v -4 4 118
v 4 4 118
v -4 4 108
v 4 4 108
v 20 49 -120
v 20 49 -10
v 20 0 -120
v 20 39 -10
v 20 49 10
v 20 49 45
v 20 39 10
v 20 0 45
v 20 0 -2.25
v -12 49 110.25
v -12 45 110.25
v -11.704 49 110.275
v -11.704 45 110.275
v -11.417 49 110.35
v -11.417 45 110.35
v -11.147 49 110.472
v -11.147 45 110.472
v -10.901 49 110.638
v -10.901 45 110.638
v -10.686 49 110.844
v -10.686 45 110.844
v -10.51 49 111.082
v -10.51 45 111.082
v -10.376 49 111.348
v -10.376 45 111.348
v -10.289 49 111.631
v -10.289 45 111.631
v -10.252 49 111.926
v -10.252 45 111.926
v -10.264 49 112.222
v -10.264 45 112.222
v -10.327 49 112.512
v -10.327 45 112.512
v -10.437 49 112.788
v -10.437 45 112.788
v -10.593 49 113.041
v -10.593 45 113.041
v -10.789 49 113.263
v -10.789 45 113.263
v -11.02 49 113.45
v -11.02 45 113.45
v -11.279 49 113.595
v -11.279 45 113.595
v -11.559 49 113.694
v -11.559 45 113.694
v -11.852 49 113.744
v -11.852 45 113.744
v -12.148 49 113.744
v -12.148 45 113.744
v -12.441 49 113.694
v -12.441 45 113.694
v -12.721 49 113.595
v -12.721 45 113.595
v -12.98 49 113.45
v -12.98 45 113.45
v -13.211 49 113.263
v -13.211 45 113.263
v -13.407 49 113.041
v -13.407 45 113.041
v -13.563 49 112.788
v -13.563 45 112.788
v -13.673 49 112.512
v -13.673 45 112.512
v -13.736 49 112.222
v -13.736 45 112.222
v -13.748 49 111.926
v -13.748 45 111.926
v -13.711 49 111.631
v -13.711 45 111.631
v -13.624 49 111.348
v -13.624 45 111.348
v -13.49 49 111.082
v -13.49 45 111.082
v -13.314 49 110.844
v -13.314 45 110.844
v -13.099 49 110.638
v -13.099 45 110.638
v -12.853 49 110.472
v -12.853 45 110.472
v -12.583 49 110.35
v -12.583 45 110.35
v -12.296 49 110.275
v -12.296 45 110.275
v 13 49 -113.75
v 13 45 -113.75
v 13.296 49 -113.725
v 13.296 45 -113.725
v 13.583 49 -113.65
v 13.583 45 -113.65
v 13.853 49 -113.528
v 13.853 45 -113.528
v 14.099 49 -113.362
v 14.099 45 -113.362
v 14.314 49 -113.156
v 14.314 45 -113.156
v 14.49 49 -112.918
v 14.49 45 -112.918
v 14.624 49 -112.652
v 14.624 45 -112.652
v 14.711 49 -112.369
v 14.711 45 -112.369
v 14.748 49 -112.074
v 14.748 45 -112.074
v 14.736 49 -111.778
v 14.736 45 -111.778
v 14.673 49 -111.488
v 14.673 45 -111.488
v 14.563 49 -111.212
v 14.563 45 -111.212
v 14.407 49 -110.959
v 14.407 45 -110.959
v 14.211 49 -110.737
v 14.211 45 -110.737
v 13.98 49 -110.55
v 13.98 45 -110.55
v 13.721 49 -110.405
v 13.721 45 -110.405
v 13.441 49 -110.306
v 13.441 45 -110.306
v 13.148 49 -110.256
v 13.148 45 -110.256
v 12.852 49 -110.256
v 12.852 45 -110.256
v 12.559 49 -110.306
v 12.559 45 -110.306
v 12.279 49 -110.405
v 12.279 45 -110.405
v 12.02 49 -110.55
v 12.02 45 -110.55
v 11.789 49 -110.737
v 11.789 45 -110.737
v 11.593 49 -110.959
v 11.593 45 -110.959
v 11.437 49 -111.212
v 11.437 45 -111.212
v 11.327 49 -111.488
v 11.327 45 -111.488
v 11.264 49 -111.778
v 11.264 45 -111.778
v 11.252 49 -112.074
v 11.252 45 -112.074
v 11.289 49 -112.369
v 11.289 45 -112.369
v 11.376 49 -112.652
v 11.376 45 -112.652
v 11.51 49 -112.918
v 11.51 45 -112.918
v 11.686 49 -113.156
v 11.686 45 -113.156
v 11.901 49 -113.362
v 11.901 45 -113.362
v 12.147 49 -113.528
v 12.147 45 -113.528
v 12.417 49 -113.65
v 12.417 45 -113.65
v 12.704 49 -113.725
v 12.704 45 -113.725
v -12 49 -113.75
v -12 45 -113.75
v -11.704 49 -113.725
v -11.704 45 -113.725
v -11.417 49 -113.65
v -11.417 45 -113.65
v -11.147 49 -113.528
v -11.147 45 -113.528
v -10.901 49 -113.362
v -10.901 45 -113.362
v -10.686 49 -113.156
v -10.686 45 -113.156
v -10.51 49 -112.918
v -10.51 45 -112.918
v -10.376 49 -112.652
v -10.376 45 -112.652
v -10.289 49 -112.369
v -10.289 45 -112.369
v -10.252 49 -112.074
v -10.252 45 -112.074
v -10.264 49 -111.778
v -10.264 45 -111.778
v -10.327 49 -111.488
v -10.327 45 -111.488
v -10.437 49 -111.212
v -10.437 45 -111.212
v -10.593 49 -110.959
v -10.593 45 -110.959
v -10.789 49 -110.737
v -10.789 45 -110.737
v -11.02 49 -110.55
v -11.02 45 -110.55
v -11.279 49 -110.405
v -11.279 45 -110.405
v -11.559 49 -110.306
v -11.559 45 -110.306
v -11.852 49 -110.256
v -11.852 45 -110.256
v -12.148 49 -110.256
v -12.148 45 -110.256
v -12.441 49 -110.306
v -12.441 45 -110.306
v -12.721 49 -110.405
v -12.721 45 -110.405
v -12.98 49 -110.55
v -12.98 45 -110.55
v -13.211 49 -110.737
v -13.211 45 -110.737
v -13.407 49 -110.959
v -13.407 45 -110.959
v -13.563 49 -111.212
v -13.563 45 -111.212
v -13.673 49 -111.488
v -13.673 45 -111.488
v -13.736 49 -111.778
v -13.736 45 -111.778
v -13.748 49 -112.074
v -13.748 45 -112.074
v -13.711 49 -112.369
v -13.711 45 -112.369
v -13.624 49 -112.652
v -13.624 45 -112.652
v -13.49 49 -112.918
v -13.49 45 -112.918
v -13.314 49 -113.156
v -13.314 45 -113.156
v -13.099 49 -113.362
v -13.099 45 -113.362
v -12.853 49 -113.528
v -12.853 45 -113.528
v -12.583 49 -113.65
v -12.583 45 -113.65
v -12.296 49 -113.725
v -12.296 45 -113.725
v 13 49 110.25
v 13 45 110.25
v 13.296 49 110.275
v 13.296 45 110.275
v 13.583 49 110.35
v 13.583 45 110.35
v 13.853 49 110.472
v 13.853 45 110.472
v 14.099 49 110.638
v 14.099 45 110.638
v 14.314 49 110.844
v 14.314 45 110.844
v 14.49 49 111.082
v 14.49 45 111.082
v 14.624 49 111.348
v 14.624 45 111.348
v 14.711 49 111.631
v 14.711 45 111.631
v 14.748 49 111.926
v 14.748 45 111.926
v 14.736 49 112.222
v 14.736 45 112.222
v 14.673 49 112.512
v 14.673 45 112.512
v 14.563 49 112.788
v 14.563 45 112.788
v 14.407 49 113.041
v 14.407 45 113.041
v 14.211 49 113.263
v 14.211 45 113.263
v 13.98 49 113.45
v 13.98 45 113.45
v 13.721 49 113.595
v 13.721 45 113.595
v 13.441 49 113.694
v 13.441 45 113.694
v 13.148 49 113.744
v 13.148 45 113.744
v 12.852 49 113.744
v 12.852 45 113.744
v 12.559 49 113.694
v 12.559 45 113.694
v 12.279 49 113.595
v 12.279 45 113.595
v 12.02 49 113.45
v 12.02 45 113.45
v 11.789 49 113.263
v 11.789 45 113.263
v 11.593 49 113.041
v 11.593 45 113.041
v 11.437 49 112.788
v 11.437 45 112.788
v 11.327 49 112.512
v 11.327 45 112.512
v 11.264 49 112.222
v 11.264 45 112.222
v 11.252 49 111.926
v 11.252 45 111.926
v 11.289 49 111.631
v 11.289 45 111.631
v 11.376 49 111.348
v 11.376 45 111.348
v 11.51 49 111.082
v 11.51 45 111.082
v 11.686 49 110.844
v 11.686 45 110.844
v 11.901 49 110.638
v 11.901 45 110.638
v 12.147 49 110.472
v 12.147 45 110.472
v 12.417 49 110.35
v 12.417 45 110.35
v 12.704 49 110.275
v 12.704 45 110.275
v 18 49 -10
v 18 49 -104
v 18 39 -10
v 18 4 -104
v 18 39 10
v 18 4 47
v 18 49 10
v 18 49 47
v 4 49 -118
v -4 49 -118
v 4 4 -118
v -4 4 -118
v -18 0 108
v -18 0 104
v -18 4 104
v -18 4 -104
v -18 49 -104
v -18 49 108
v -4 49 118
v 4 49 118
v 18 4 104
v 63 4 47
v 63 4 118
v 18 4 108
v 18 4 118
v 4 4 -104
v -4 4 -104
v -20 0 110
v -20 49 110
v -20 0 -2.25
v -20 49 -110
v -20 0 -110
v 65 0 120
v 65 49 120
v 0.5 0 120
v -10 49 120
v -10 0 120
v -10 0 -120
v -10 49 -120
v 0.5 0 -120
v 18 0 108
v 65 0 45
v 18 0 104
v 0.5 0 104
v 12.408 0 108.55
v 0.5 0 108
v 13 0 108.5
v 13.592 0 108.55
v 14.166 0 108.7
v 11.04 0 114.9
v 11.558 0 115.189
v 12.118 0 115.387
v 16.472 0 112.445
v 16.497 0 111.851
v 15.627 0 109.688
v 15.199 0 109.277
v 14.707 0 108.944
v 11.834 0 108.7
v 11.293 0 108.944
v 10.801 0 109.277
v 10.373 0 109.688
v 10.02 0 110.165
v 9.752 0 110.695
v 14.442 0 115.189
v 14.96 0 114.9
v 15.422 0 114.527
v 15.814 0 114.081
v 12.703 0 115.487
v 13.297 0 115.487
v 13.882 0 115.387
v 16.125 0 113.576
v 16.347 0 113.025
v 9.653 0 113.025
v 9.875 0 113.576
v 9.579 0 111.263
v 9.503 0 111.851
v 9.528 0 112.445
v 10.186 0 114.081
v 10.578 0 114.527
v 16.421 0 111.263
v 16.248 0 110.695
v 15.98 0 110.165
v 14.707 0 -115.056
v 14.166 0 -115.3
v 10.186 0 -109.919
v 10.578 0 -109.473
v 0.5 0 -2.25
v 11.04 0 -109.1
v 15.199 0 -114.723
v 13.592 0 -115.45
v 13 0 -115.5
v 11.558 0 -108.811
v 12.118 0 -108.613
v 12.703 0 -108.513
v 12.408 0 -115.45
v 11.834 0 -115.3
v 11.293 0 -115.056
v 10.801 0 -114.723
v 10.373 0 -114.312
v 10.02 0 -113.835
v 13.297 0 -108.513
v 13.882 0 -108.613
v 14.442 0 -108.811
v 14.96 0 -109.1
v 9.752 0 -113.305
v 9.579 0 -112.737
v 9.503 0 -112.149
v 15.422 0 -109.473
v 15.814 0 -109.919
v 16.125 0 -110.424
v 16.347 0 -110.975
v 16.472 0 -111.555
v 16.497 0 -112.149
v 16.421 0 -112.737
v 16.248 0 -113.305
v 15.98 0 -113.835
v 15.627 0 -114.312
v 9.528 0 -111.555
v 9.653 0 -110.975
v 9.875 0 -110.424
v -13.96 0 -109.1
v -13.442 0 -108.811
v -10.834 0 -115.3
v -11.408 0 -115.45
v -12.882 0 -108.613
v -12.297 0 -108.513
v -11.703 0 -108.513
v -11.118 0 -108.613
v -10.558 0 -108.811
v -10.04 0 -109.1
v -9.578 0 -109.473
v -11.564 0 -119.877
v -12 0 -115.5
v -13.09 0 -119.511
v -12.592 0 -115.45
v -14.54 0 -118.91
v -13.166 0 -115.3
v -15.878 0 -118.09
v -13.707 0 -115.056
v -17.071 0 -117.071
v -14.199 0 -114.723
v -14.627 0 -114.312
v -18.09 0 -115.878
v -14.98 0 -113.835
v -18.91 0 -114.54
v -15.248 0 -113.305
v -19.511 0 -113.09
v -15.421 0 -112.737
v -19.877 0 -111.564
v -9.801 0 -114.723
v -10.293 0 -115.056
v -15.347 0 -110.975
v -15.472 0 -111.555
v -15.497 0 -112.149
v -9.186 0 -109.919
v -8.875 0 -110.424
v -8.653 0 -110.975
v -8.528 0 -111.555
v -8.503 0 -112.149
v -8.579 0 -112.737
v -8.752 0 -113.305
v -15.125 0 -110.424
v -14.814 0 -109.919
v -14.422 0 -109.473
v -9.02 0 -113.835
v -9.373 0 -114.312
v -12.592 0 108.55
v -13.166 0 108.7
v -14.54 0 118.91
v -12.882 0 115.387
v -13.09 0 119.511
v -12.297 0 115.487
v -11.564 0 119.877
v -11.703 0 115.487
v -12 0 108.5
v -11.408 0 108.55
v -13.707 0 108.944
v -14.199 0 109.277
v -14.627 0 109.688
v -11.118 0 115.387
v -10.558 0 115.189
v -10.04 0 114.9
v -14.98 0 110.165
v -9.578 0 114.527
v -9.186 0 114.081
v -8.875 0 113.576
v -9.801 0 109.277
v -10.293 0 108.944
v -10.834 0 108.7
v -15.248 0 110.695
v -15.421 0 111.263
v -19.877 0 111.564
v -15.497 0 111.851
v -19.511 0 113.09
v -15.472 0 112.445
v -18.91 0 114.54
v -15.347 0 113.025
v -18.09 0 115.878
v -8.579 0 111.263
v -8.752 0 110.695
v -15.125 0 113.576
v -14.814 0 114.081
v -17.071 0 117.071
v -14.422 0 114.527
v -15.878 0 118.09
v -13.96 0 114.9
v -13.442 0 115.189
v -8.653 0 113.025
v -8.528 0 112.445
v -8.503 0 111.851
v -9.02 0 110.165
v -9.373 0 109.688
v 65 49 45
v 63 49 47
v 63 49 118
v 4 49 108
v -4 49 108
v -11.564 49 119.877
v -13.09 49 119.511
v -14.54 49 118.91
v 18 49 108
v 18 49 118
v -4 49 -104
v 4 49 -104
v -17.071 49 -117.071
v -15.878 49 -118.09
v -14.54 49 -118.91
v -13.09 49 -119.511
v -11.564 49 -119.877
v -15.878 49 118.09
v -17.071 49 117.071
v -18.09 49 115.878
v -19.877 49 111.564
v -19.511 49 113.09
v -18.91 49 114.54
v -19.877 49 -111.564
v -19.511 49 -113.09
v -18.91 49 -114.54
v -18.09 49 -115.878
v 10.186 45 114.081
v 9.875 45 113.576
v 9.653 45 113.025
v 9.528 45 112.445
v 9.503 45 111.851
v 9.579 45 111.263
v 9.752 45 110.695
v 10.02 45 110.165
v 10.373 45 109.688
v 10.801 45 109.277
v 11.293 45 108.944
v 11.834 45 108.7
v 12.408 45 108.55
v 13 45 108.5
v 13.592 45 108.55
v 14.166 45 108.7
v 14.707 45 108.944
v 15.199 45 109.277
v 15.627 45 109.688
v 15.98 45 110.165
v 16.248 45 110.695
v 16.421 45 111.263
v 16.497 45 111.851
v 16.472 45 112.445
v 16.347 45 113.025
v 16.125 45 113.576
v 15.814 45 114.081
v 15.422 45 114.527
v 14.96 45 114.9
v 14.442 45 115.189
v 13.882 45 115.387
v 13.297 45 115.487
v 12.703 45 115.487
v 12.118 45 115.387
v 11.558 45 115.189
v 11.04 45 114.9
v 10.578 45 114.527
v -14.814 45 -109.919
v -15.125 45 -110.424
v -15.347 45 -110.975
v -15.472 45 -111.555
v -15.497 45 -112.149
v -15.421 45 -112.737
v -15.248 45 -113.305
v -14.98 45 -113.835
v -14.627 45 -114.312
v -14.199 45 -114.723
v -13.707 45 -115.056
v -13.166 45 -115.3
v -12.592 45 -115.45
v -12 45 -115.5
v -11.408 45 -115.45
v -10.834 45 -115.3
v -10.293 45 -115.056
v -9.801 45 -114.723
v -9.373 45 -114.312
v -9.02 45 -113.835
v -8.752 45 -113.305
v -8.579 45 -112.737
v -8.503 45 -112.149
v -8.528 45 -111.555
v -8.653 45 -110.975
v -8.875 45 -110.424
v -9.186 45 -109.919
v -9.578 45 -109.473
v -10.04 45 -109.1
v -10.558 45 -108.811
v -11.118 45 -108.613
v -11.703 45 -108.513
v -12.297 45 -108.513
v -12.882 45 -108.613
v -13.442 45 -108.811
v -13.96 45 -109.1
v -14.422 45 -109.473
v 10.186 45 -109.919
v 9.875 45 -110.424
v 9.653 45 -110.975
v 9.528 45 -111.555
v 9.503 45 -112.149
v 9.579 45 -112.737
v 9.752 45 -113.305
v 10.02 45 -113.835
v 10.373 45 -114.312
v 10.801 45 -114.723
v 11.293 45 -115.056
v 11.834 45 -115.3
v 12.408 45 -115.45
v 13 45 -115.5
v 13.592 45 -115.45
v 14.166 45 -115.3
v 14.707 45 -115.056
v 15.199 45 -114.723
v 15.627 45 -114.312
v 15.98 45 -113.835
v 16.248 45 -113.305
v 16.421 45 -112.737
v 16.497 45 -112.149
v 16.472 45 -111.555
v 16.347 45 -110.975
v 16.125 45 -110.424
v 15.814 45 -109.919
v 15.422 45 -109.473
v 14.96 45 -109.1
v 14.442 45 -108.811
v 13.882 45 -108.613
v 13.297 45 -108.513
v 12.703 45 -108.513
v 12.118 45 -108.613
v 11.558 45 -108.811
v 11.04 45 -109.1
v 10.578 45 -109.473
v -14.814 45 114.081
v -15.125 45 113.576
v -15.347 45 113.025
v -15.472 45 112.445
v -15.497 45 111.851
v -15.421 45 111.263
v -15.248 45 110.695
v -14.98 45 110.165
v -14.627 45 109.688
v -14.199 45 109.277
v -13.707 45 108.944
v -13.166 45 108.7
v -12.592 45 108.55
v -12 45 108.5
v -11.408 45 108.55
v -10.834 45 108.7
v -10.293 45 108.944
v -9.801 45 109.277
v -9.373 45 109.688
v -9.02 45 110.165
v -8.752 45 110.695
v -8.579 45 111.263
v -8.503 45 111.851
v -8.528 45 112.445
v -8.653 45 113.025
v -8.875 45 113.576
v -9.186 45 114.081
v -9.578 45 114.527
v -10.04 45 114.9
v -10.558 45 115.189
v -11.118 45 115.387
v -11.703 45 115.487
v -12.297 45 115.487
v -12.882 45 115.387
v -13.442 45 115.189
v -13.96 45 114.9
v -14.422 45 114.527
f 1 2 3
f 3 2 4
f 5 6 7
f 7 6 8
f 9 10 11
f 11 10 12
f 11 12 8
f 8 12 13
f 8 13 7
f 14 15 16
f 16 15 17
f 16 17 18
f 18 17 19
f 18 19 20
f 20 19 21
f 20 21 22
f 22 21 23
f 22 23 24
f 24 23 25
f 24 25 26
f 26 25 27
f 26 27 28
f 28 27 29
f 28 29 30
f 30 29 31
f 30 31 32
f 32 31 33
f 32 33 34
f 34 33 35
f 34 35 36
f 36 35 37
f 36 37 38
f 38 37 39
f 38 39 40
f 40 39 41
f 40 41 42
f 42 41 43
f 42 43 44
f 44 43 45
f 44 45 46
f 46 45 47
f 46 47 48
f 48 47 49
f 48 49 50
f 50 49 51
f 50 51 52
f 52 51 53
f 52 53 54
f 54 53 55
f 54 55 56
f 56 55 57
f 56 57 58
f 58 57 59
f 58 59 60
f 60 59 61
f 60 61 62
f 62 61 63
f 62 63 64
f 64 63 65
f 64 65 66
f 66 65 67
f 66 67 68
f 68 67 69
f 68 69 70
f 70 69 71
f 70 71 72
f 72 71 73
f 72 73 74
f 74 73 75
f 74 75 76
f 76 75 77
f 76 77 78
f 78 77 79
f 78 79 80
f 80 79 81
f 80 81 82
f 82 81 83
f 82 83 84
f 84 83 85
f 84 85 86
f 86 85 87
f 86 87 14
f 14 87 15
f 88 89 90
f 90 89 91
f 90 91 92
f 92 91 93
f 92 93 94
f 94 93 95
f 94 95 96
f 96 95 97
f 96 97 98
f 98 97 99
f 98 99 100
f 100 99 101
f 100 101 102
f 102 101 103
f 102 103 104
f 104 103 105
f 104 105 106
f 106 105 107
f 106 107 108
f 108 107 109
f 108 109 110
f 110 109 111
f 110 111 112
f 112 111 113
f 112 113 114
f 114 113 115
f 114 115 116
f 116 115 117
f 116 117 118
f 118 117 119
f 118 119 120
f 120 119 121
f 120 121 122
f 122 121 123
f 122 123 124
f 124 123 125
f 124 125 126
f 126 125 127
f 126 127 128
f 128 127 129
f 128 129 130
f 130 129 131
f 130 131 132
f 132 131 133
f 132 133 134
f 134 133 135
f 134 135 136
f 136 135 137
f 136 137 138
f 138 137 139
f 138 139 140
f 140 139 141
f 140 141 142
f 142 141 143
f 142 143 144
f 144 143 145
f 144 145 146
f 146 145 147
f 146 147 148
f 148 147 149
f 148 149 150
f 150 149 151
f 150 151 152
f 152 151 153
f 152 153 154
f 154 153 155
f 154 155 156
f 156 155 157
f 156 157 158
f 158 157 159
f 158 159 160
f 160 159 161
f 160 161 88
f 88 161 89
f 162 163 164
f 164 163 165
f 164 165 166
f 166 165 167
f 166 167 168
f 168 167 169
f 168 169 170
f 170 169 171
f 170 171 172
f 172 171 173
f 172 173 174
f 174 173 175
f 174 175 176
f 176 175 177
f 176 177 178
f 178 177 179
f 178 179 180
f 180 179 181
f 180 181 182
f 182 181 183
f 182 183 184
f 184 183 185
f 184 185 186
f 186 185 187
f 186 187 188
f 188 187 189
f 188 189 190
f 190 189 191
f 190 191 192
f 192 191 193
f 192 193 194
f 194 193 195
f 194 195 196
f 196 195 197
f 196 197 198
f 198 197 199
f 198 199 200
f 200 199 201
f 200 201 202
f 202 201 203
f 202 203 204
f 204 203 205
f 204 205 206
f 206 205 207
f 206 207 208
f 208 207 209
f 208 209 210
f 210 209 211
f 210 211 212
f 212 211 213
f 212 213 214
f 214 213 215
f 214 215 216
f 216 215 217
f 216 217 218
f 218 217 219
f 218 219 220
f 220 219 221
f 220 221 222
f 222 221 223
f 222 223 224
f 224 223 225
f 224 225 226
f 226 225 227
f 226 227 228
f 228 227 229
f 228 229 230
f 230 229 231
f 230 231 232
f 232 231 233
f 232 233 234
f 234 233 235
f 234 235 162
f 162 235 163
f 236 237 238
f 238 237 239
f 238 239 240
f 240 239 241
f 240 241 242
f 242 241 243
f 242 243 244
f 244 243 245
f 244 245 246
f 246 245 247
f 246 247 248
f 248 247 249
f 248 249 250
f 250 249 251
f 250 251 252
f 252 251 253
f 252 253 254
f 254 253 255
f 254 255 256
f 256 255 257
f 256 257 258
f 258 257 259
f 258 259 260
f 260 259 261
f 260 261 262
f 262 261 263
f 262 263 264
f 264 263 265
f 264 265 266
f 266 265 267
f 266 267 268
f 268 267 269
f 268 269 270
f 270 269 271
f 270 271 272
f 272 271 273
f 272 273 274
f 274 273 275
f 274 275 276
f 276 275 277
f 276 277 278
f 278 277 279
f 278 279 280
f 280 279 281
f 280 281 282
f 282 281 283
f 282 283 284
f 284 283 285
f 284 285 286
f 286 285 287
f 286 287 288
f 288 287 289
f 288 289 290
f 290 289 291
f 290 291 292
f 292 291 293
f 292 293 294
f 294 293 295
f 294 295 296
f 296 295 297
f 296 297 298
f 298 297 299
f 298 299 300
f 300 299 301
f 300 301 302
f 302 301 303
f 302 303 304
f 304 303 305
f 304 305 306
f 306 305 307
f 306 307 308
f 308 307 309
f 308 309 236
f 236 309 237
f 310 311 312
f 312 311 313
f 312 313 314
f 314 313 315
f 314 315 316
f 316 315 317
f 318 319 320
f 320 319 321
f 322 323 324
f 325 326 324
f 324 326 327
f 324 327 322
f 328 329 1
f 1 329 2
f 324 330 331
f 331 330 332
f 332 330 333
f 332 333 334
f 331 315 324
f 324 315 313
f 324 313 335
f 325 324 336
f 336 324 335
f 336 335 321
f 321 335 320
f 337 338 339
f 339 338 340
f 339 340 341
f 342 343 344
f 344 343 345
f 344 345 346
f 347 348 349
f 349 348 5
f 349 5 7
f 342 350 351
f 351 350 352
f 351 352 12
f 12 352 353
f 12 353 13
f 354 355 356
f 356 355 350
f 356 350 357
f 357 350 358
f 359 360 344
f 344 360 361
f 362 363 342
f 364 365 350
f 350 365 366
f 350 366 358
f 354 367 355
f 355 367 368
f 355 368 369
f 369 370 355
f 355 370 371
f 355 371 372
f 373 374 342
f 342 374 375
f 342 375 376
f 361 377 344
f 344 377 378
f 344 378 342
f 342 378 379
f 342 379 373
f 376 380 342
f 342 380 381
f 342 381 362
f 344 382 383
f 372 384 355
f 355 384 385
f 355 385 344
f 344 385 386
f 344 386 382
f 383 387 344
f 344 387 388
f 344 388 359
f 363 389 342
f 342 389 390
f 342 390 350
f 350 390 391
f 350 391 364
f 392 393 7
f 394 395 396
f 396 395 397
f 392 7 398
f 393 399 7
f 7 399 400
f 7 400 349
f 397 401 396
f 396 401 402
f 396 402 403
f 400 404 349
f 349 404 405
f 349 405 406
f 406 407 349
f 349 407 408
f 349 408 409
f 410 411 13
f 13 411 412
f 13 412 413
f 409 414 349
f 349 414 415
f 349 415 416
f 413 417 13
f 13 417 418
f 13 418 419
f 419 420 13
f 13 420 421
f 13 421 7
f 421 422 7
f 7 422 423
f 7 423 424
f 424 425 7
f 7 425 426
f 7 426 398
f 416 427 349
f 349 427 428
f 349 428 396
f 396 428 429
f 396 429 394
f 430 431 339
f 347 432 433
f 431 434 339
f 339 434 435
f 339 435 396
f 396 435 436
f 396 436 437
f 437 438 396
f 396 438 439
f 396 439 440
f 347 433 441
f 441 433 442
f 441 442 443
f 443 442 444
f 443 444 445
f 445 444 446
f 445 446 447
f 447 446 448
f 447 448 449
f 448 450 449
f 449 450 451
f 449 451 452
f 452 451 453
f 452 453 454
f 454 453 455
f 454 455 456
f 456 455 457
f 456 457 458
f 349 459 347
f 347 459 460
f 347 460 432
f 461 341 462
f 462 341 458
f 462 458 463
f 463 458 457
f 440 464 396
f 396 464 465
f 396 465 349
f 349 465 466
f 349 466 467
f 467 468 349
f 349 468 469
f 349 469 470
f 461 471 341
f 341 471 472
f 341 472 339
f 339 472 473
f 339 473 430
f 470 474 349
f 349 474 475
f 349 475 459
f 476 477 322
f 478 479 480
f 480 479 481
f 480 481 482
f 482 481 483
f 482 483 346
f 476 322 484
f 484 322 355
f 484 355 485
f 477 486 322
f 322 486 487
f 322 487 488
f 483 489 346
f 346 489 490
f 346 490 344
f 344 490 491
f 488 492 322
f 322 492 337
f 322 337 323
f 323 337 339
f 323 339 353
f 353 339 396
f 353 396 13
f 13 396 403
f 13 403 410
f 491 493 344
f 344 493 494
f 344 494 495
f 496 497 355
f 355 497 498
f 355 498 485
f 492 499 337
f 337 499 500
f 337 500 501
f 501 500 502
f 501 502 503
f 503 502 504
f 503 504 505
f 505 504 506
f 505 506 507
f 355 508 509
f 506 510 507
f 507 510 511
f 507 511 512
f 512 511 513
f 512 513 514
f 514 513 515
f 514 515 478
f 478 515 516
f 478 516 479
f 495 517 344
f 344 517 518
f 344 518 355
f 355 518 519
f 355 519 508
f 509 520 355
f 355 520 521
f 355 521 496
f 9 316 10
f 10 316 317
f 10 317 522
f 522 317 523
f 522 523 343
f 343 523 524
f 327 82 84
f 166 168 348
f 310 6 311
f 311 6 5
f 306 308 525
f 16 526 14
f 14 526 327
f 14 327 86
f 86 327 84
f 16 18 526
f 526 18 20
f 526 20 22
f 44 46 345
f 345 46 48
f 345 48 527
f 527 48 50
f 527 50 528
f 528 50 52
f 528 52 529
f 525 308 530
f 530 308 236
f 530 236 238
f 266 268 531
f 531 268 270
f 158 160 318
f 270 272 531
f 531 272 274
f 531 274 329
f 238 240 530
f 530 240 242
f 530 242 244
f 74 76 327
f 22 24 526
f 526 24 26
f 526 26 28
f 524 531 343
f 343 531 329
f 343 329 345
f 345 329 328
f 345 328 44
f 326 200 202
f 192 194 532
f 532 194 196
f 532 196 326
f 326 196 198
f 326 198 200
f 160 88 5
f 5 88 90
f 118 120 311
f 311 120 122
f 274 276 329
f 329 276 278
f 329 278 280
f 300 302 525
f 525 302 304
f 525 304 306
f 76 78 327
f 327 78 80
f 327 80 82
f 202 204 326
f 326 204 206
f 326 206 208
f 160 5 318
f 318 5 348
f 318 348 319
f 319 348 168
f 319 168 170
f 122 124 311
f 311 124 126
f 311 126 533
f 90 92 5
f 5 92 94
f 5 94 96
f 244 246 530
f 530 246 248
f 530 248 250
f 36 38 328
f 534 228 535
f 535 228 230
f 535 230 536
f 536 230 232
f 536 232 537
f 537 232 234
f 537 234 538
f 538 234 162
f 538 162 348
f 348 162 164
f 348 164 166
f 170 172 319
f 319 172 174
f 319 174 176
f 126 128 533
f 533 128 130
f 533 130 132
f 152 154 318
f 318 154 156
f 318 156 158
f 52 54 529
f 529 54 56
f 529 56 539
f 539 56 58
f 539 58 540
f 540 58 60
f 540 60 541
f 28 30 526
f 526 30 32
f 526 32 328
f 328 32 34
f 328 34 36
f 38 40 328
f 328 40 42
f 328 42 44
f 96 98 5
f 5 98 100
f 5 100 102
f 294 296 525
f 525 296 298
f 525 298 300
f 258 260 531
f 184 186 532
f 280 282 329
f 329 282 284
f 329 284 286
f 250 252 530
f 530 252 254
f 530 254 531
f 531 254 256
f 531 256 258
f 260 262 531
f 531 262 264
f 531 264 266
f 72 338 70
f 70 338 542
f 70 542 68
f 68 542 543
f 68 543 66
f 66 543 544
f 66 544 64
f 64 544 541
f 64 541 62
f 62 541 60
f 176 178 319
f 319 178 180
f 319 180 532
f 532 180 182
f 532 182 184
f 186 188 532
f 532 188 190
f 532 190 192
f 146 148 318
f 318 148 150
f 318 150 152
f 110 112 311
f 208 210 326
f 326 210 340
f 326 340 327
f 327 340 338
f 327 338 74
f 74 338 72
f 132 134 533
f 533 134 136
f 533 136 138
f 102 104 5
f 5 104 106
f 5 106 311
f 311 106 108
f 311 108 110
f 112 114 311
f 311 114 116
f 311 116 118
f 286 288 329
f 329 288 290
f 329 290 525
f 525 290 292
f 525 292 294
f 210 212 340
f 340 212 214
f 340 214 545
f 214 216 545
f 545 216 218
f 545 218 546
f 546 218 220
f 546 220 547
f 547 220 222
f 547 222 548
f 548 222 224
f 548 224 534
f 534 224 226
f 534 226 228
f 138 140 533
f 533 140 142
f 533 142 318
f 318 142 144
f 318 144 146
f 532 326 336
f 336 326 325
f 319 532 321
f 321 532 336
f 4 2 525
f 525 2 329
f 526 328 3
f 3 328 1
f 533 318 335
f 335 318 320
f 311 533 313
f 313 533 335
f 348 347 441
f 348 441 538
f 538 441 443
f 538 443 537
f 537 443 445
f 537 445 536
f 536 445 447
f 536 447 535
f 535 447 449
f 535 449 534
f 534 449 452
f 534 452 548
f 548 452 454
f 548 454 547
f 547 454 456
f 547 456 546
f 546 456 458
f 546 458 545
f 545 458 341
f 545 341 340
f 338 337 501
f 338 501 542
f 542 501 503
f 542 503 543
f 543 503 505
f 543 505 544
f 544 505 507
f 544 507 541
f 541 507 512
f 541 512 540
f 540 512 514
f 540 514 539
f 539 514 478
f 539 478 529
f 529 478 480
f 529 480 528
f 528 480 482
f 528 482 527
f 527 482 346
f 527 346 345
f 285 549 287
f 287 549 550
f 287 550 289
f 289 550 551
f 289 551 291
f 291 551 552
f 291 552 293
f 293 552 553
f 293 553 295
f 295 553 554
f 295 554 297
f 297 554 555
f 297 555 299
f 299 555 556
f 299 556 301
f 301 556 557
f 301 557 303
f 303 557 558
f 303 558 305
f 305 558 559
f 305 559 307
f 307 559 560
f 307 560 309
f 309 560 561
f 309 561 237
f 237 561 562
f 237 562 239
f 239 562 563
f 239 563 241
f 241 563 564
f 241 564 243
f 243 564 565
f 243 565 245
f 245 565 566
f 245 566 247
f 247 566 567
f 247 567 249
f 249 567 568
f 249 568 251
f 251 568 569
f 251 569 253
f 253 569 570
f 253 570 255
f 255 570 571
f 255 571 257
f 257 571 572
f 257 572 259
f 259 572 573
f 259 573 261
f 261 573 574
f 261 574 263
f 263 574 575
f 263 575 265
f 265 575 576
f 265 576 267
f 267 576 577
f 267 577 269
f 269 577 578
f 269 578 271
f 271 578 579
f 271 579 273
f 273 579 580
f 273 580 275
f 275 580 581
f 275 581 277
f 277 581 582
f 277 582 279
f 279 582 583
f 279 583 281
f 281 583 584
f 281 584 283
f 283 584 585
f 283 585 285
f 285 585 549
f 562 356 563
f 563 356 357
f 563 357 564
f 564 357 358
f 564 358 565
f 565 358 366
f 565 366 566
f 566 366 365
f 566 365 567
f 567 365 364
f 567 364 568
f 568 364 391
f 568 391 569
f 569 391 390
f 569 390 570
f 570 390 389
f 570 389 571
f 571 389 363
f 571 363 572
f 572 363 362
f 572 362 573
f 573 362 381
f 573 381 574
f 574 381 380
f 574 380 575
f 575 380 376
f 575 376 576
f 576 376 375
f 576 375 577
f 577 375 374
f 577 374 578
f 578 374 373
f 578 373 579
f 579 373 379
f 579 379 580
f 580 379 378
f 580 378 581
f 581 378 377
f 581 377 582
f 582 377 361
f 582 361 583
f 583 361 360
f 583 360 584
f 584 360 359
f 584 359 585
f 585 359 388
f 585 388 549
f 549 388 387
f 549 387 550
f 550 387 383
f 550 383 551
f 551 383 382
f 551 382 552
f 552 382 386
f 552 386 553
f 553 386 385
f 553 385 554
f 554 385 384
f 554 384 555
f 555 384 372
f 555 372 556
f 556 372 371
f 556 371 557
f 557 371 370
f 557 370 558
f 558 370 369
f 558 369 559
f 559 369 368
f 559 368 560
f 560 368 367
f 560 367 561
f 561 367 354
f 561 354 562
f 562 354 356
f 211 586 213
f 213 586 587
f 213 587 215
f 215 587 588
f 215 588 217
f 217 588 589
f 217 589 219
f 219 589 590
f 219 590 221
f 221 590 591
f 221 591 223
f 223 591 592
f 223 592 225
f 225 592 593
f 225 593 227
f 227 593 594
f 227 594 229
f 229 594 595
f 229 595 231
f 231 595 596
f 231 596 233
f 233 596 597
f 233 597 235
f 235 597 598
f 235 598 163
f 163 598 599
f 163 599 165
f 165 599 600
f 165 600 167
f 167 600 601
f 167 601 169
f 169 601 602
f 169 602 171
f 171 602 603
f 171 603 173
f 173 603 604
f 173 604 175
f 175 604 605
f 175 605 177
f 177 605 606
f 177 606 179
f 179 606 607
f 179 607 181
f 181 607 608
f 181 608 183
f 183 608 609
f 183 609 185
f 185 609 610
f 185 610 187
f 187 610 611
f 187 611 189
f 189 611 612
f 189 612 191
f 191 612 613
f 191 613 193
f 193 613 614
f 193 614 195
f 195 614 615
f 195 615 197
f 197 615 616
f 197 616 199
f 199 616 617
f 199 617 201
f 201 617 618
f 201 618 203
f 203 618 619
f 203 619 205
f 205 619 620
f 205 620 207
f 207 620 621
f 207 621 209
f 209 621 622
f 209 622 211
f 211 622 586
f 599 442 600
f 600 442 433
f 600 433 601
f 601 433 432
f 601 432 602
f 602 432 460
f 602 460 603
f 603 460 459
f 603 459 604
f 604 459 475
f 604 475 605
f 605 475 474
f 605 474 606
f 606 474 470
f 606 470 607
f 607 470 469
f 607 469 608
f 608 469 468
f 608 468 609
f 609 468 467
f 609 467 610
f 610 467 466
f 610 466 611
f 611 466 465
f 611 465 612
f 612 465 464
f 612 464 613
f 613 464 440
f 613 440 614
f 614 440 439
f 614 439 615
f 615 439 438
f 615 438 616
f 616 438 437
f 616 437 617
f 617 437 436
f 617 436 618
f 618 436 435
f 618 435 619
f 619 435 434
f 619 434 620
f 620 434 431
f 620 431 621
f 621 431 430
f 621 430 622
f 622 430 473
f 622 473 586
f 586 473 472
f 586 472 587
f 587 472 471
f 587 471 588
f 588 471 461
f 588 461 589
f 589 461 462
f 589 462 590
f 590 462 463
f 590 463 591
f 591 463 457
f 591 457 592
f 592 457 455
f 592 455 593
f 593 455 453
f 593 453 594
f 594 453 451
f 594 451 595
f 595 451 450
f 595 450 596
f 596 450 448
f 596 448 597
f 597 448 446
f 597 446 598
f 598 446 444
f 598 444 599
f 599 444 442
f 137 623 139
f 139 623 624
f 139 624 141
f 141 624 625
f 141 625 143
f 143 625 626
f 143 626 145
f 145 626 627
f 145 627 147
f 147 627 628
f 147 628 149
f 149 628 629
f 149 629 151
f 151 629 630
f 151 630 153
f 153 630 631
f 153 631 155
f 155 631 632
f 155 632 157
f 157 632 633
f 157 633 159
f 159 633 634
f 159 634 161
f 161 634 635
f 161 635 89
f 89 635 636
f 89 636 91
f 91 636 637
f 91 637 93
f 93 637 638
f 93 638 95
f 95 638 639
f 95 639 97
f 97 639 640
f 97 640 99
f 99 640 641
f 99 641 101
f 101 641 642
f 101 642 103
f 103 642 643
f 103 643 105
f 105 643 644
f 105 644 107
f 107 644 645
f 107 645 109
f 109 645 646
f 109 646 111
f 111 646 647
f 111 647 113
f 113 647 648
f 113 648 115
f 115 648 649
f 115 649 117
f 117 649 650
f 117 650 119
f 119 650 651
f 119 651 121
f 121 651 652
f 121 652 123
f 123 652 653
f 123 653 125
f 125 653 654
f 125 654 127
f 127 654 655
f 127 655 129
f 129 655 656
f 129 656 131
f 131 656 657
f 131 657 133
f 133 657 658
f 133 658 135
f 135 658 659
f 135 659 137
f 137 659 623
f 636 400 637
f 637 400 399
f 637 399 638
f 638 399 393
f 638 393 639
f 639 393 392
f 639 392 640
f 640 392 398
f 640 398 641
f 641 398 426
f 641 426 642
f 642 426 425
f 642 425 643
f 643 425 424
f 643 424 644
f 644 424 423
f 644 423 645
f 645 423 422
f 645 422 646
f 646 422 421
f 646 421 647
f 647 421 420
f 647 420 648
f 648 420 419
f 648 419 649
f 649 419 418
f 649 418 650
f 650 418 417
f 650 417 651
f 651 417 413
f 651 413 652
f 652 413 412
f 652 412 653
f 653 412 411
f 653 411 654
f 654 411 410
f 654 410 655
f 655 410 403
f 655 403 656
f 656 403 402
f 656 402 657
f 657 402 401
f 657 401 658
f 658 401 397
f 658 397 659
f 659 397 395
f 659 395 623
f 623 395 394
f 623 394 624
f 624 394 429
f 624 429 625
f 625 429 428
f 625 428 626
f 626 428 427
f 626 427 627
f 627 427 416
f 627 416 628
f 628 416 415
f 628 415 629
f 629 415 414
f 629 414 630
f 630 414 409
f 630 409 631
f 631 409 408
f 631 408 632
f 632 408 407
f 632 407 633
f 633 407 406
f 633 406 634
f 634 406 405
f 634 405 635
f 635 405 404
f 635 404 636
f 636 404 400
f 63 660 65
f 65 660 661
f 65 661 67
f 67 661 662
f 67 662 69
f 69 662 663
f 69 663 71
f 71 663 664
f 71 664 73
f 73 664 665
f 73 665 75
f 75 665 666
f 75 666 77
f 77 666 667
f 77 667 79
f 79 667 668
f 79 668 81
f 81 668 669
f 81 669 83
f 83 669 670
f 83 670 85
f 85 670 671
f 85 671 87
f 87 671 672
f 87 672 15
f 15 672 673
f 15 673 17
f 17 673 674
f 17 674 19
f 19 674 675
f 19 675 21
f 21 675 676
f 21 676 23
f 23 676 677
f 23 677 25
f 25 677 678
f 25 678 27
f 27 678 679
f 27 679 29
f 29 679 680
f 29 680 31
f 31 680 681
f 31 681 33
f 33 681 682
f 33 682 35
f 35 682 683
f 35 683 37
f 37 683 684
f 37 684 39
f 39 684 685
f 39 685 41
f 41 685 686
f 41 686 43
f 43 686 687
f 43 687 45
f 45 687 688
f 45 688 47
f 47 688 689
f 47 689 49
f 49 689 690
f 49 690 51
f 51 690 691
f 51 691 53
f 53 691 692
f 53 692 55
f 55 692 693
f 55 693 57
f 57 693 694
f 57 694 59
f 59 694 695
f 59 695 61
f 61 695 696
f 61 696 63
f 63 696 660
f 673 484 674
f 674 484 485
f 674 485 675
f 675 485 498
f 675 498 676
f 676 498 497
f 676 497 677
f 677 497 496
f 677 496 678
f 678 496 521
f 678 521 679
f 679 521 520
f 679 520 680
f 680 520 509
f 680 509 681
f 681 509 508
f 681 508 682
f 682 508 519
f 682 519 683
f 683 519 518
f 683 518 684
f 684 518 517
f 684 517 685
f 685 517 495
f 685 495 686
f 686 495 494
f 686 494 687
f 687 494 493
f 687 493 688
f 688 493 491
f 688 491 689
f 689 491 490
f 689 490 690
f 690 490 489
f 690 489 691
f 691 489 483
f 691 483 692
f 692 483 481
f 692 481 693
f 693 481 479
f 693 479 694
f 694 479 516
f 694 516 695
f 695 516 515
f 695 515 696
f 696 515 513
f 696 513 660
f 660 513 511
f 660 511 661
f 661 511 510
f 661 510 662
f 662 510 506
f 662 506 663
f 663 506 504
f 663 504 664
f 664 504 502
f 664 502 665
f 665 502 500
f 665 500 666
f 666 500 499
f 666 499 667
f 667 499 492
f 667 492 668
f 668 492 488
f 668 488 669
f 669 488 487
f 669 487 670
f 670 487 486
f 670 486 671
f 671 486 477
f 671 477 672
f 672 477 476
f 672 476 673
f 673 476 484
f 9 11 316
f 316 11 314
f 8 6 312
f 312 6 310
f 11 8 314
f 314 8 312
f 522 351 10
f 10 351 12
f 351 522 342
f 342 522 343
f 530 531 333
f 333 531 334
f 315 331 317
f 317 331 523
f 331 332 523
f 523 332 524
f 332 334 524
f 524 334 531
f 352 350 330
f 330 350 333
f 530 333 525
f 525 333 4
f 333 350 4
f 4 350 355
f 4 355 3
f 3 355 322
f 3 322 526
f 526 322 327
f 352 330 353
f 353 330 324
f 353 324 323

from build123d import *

# Parameters (mm, degrees)
SKETCH1_W           = 40
SKETCH1_H           = 240
BOSS_EXTRUDE2_DEPTH = 4
SKETCH2_W           = 40
SKETCH2_H           = 240
SKETCH2_W_2         = 36
SKETCH2_H_2         = 236
BOSS_EXTRUDE4_DEPTH = 45
SKETCH3_W           = 14
SKETCH3_H           = 14
BOSS_EXTRUDE5_DEPTH = 45
SKETCH4_R           = 1.75
CUT_EXTRUDE1_DEPTH  = 90
FILLET1_R           = 10
FILLET2_R           = 10
SKETCH5_R           = 3.5
CUT_EXTRUDE2_DEPTH  = 45
SKETCH6_W           = 20
SKETCH6_H           = 10
CUT_EXTRUDE3_DEPTH  = 10
SKETCH7_W           = 75
SKETCH7_H           = 49
BOSS_EXTRUDE6_DEPTH = 45
SKETCH8_W           = 45
SKETCH8_H           = 71
CUT_EXTRUDE4_DEPTH  = 45
SKETCH9_W           = 36
SKETCH9_H           = 4
CUT_EXTRUDE5_DEPTH  = 50


with BuildPart() as part:
    # Sketch1 → Boss-Extrude2 (new body)
    with BuildSketch(Plane(origin=(0, 0, 0), x_dir=(1, 0, 0), z_dir=(0, 1, 0))):
        Rectangle(SKETCH1_W, SKETCH1_H)
    extrude(amount=BOSS_EXTRUDE2_DEPTH)

    # Sketch2 → Boss-Extrude4 (add)
    with BuildSketch(Plane(origin=(0, 4, 0), x_dir=(1, 0, 0), z_dir=(0, 1, 0))):
        Rectangle(SKETCH2_W, SKETCH2_H)
        Rectangle(SKETCH2_W_2, SKETCH2_H_2, mode=Mode.SUBTRACT)
    extrude(amount=BOSS_EXTRUDE4_DEPTH)

    # Sketch3 → Boss-Extrude5 (add)
    with BuildSketch(Plane(origin=(0, 4, 0), x_dir=(1, 0, 0), z_dir=(0, 1, 0))):
        with Locations((-11, 111)):
            Rectangle(SKETCH3_W, SKETCH3_H)
        with Locations((11, 111)):
            Rectangle(SKETCH3_W, SKETCH3_H)
        with Locations((-11, -111)):
            Rectangle(SKETCH3_W, SKETCH3_H)
        with Locations((11, -111)):
            Rectangle(SKETCH3_W, SKETCH3_H)
    extrude(amount=BOSS_EXTRUDE5_DEPTH)

    # Sketch4 → Cut-Extrude1 (cut)
    with BuildSketch(Plane(origin=(0, 0, 0), x_dir=(-1, 0, 0), z_dir=(0, -1, 0))):
        with Locations(Location((12, -112, 0), (0, 0, 90))):
            Circle(SKETCH4_R)
        with Locations(Location((-13, -112, 0), (0, 0, 90))):
            Circle(SKETCH4_R)
        with Locations(Location((12, 112, 0), (0, 0, 90))):
            Circle(SKETCH4_R)
        with Locations(Location((-13, 112, 0), (0, 0, 90))):
            Circle(SKETCH4_R)
    extrude(amount=-CUT_EXTRUDE1_DEPTH, mode=Mode.SUBTRACT)

    # Fillet1
    fillet1_edges = [part.edges().sort_by_distance(p)[0] for p in [
        (-20, 24.5, -120),
    ]]
    fillet(fillet1_edges, radius=FILLET1_R)

    # Fillet2
    fillet2_edges = [part.edges().sort_by_distance(p)[0] for p in [
        (-20, 24.5, 120),
    ]]
    fillet(fillet2_edges, radius=FILLET2_R)

    # Sketch5 → Cut-Extrude2 (cut)
    with BuildSketch(Plane(origin=(0, 0, 0), x_dir=(-1, 0, 0), z_dir=(0, -1, 0))):
        with Locations(Location((12, -112, 0), (0, 0, 90))):
            Circle(SKETCH5_R)
        with Locations(Location((-13, -112, 0), (0, 0, 90))):
            Circle(SKETCH5_R)
        with Locations(Location((12, 112, 0), (0, 0, 90))):
            Circle(SKETCH5_R)
        with Locations(Location((-13, 112, 0), (0, 0, 90))):
            Circle(SKETCH5_R)
    extrude(amount=-CUT_EXTRUDE2_DEPTH, mode=Mode.SUBTRACT)

    # Sketch6 → Cut-Extrude3 (cut)
    with BuildSketch(Plane(origin=(20, 0, 0), x_dir=(0, 0, -1), z_dir=(1, 0, 0))):
        with Locations((0, 44)):
            Rectangle(SKETCH6_W, SKETCH6_H)
    extrude(amount=-CUT_EXTRUDE3_DEPTH, mode=Mode.SUBTRACT)

    # Sketch7 → Boss-Extrude6 (add)
    with BuildSketch(Plane(origin=(20, 0, 0), x_dir=(0, 0, -1), z_dir=(1, 0, 0))):
        with Locations((-82.5, 24.5)):
            Rectangle(SKETCH7_W, SKETCH7_H)
    extrude(amount=BOSS_EXTRUDE6_DEPTH)

    # Sketch8 → Cut-Extrude4 (cut)
    with BuildSketch(Plane(origin=(0, 49, 0), x_dir=(1, 0, 0), z_dir=(0, 1, 0))):
        with Locations((40.5, -82.5)):
            Rectangle(SKETCH8_W, SKETCH8_H)
    extrude(amount=-CUT_EXTRUDE4_DEPTH, mode=Mode.SUBTRACT)

    # Sketch9 → Cut-Extrude5 (cut)
    with BuildSketch(Plane(origin=(0, 49, 0), x_dir=(1, 0, 0), z_dir=(0, 1, 0))):
        with Locations((0, -106)):
            Rectangle(SKETCH9_W, SKETCH9_H)
    extrude(amount=-CUT_EXTRUDE5_DEPTH, mode=Mode.SUBTRACT)


solid = part.part
